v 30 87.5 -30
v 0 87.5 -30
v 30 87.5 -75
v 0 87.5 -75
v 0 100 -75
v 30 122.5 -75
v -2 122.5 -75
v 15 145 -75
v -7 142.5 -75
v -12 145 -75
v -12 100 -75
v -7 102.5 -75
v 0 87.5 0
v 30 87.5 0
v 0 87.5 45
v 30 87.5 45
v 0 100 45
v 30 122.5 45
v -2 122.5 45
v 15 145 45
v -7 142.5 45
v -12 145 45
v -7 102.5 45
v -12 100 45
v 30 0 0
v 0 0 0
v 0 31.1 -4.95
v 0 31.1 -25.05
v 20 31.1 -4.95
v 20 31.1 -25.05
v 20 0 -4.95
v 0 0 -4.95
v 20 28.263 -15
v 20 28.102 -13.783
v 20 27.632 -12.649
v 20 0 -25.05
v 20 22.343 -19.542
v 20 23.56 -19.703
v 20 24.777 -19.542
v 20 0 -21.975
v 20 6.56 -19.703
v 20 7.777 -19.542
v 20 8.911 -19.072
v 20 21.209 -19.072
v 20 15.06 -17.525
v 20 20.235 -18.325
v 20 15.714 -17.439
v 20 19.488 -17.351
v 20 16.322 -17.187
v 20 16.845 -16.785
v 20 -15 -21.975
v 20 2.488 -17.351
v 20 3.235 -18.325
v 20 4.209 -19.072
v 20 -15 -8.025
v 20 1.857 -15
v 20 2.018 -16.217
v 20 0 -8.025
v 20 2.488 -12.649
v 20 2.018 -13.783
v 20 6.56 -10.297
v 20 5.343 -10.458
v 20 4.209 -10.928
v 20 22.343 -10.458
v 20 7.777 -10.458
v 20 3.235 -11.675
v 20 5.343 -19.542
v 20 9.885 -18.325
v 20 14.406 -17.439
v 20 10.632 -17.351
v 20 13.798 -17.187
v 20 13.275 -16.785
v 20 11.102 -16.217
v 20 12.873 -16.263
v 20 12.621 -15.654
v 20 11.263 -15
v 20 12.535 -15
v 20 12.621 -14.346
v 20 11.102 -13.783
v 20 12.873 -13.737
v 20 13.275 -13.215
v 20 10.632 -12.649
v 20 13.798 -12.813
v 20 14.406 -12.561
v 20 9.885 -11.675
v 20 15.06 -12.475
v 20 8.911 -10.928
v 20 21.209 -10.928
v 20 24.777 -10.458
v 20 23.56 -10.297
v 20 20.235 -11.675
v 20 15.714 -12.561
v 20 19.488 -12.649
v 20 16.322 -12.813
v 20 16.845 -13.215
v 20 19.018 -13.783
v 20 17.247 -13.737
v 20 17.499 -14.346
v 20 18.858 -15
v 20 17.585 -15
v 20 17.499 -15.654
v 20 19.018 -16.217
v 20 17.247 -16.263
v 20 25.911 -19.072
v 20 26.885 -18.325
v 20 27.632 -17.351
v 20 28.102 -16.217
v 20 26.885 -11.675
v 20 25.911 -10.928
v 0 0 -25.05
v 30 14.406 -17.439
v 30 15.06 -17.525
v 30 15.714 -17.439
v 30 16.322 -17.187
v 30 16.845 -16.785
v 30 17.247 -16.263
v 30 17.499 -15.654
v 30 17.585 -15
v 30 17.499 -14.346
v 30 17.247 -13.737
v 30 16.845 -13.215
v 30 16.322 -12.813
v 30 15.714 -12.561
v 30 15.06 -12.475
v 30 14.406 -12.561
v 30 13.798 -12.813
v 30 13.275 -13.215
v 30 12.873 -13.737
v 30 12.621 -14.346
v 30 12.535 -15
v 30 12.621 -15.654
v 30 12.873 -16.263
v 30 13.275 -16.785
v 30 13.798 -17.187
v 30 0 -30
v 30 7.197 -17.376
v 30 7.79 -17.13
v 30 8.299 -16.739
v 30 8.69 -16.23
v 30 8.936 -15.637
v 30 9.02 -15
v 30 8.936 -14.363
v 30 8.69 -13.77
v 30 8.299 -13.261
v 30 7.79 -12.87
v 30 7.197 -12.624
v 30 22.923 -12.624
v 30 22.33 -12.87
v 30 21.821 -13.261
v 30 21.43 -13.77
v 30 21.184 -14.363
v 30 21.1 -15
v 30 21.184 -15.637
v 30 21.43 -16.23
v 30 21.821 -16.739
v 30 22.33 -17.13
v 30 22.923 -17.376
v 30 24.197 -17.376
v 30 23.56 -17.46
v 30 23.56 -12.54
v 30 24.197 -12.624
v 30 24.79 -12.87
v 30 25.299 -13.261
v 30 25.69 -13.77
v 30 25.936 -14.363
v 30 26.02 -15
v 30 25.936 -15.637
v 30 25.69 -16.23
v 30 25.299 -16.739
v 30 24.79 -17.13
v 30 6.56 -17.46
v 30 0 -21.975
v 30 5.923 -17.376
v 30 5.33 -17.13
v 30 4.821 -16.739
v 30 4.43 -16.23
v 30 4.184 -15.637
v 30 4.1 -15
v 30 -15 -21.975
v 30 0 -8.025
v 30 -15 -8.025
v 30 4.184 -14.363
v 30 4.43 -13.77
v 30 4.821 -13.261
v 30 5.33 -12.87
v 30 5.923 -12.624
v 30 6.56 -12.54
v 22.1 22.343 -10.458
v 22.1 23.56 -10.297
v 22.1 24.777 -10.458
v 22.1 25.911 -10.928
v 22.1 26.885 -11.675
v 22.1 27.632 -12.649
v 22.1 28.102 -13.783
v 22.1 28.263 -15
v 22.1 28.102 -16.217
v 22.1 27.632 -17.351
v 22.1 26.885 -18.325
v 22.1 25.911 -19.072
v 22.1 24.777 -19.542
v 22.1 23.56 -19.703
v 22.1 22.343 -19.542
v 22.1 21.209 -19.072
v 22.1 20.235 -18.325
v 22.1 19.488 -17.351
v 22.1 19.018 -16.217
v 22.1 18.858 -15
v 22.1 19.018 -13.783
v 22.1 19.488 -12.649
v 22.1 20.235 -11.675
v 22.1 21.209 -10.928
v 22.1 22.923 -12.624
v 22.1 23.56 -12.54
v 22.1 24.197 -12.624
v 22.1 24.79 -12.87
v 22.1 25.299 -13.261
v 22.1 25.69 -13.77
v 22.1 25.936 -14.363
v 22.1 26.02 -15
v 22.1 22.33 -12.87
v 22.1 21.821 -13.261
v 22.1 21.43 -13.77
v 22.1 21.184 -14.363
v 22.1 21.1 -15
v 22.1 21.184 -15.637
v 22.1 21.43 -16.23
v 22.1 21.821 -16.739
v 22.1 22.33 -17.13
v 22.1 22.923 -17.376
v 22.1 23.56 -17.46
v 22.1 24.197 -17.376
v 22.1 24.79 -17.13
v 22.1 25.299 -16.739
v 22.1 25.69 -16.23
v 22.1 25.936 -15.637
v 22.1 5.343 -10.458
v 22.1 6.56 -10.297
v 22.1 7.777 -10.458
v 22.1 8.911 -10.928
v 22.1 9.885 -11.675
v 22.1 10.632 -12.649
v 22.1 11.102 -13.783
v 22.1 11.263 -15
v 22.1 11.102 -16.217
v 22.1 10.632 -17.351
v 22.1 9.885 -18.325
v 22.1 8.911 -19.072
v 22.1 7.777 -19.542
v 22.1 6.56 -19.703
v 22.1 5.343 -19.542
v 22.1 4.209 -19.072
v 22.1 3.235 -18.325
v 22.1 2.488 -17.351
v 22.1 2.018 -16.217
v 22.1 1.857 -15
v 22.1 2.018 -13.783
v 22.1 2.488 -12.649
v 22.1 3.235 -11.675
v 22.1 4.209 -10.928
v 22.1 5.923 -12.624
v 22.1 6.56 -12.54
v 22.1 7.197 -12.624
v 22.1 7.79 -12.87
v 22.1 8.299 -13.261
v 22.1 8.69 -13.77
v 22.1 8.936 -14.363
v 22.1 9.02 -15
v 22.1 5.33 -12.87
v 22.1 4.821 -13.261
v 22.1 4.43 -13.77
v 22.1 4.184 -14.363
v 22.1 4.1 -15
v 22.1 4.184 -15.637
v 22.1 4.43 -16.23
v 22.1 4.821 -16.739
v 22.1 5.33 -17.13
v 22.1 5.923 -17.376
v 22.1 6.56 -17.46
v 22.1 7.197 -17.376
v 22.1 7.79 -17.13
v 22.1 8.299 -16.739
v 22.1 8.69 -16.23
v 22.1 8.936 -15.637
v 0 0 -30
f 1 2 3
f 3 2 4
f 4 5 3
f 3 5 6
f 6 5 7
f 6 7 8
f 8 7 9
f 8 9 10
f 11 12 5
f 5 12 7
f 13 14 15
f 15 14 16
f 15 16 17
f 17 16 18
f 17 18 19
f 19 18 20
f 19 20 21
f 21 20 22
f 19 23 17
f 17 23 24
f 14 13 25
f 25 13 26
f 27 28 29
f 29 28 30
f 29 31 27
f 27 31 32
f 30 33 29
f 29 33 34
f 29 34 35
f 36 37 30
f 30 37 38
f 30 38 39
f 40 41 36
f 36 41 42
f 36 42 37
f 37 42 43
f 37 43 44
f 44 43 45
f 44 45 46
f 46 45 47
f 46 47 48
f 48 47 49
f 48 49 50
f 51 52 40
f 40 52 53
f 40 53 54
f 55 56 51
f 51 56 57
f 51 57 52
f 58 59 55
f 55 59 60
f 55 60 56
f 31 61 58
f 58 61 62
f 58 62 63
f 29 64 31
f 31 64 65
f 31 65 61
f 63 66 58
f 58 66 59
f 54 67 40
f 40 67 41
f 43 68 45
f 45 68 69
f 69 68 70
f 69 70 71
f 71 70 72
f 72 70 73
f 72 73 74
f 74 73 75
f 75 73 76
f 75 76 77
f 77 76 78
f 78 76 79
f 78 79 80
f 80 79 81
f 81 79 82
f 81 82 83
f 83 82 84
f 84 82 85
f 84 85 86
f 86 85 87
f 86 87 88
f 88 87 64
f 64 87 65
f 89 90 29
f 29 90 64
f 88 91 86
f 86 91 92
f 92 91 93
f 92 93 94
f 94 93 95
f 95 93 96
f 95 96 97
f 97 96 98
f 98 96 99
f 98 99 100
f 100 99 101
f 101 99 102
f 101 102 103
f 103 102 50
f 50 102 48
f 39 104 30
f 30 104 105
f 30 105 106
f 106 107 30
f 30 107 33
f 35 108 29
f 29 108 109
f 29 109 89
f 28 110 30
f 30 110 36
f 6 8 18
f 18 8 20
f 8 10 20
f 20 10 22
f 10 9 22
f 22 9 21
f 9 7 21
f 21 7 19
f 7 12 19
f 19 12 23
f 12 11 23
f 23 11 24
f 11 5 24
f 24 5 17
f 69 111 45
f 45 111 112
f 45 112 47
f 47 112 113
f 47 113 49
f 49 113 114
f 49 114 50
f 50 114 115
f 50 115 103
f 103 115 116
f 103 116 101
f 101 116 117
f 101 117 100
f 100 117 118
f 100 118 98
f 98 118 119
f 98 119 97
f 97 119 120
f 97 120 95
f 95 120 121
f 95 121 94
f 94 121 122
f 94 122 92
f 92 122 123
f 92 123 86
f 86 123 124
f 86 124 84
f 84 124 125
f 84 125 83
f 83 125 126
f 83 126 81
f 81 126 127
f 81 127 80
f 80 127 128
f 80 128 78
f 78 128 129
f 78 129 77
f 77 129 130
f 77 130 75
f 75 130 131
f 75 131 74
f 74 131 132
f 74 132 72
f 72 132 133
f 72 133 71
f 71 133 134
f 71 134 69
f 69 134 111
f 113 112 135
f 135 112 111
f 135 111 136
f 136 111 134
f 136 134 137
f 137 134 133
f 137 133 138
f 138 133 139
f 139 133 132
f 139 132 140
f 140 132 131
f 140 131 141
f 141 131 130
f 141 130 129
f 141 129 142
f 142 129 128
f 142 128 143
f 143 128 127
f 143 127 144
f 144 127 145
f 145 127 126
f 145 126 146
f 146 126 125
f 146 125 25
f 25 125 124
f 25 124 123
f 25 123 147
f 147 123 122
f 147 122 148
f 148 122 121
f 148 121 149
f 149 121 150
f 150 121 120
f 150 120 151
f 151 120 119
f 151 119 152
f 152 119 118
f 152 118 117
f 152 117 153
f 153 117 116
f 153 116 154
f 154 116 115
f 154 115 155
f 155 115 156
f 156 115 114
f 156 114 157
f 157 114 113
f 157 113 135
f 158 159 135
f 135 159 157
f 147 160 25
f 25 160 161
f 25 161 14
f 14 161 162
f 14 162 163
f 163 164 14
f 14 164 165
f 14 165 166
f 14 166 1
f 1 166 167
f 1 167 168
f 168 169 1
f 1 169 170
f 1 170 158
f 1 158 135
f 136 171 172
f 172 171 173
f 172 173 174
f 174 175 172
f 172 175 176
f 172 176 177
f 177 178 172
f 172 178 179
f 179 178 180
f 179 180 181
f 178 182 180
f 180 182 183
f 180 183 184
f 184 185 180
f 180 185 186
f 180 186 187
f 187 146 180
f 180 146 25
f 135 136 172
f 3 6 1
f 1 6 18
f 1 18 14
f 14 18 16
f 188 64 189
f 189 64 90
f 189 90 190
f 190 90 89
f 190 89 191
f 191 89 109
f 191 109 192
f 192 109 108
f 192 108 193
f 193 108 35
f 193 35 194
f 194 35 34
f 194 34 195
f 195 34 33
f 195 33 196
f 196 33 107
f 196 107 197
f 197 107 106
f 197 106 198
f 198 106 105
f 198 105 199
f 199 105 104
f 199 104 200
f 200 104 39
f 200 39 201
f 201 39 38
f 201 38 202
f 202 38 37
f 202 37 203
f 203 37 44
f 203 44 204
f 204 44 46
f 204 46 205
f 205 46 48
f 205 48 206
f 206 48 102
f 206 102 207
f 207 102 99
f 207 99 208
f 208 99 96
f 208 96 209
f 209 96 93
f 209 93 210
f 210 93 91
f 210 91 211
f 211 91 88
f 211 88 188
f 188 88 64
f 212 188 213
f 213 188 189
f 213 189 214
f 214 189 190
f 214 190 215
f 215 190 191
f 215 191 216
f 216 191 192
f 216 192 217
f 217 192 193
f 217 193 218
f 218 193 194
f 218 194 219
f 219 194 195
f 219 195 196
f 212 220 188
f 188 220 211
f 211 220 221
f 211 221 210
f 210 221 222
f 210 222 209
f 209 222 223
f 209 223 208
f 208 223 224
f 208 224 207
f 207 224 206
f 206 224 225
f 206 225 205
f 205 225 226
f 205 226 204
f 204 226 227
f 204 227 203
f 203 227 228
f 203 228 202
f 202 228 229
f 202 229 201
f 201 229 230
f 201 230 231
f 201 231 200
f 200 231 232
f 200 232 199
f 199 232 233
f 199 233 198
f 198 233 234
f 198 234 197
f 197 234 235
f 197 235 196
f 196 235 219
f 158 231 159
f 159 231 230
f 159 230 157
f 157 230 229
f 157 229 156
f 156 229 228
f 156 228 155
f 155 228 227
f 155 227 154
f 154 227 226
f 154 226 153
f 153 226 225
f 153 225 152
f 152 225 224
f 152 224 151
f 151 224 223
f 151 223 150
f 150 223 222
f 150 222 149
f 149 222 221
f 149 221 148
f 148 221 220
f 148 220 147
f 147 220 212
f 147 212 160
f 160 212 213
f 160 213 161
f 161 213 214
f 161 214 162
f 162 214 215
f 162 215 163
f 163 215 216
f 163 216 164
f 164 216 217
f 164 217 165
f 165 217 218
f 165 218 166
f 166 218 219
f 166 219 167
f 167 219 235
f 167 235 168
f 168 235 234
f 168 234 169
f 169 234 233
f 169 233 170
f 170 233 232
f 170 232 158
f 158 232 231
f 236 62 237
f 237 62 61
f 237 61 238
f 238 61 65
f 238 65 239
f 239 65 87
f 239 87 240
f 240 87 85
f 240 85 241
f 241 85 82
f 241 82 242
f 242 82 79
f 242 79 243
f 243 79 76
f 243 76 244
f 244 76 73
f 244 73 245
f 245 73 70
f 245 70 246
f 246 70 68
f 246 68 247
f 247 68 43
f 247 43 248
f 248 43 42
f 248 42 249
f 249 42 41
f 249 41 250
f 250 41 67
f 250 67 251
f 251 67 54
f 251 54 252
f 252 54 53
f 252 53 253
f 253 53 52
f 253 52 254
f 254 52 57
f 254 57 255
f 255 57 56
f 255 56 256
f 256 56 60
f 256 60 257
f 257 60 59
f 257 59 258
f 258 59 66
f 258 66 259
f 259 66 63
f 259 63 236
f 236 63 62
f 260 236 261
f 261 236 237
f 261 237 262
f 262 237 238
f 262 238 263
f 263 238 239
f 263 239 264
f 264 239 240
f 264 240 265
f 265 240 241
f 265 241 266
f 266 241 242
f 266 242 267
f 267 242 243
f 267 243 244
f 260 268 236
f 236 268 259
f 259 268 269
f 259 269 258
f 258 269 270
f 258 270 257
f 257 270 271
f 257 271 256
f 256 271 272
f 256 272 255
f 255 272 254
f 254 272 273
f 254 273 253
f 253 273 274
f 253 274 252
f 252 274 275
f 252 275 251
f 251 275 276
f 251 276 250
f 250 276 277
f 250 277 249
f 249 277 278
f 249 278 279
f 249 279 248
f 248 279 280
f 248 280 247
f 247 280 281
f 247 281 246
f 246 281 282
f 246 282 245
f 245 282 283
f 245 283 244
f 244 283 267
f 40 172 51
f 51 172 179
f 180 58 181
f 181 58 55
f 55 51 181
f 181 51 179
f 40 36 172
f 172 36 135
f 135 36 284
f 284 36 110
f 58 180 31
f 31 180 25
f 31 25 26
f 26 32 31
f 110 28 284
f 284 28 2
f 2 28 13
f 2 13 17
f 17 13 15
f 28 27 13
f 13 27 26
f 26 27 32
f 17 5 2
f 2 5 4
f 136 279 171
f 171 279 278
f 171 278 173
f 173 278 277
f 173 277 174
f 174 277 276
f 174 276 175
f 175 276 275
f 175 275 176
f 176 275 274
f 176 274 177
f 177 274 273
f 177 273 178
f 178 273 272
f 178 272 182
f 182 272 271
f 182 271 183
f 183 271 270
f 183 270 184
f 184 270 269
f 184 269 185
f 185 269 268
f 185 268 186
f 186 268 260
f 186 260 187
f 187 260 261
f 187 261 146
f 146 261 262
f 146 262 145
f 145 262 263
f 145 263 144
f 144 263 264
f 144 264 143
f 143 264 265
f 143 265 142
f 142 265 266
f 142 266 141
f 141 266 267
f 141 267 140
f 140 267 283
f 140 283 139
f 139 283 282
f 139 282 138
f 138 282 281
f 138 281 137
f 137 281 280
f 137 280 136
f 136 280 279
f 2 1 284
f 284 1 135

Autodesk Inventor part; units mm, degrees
ref_plane "YZ Plane" through (0, 0, 0) normal (1, 0, 0) x (0, 1, 0)
ref_plane "XZ Plane" through (0, 0, 0) normal (0, 1, 0) x (-1, 0, 0)
sketch "Sketch1" plane through (0, 0, 0) normal (0, 0, 1) x (1, 0, 0)
  line L0 (0, 0) -> (25, 0)
  line L1 (25, 0) -> (25, 40)
  line L2 (25, 40) -> (0, 40)
  line L3 (0, 40) -> (0, 0)
  dimension "d1" = 25
  dimension "d2" = 40
  dimension "d3" = 25
extrude "Extrusion1" add sketch "Sketch1" against normal blind 30
sketch "Sketch2" plane through (25, 0, 0) normal (1, 0, 0) x (0, 0, -1)
  line L0 (0, 0) -> (30, 0) projected
  circle A0 centre (15, 6.56) radius 2.46
extrude "Extrusion2" cut sketch "Sketch2" against normal blind 30
sketch "Sketch3" plane through (0, 0, 0) normal (-1, 0, 0) x (0, 0, 1)
  line L0 (0, 0) -> (-30, 0) projected
  line L1 (-25.05, 0) -> (-4.95, 0)
  line L2 (-4.95, 0) -> (-4.95, 33.12)
  line L3 (-4.95, 33.12) -> (-25.05, 33.12)
  line L4 (-25.05, 33.12) -> (-25.05, 0)
  dimension "d11" = 20.1
extrude "Extrusion3" cut sketch "Sketch3" against normal blind 20
sketch "Sketch4" plane through (0, 0, 0) normal (0, -1, 0) x (1, 0, 0)
  line L0 (20, -4.95) -> (20, -25.05) projected
  line L1 (20, -15) -> (25, -15)
  line L2 (25, 0) -> (25, -30) projected
  line L3 (20, -8.025) -> (25, -8.025)
  line L4 (25, -8.025) -> (25, -21.975)
  line L5 (25, -21.975) -> (20, -21.975)
  line L6 (20, -21.975) -> (20, -8.025)
  line L7 (20, -8.025) -> (25, -21.975) construction
  line L8 (25, -8.025) -> (20, -21.975) construction
  line L9 (25, -12.54) -> (25, -17.46) projected
  point P0 (0, 0)
  point P1 (22.5, -15)
  dimension "d14" = 13.95
extrude "Extrusion4" add sketch "Sketch4" along normal blind 15
sketch "Sketch5" plane through (20, 0, 0) normal (-1, 0, 0) x (0, 0, 1)
  circle A0 centre (-15, 6.56) radius 2.46 projected
  circle A1 centre (-15, 6.56) radius 4.7025
  circle A2 centre (-15, 6.56) radius 2.46 projected
  circle A3 centre (-15, 6.56) radius 2.46
  point P0 (0, 0)
  dimension "d17" = 9.405
extrude "Extrusion5" cut sketch "Sketch5" against normal blind 2.1
sketch "Sketch6" plane through (25, 0, 0) normal (1, 0, 0) x (0, 0, -1)
  circle A0 centre (15, 6.56) radius 4.7025 projected
  line L0 (15, 6.56) -> (15, 23.56)
  circle A1 centre (15, 23.56) radius 2.46
  point P0 (0, 0)
  dimension "d20" = 17
  dimension "d21" = 4.92
extrude "Extrusion6" cut sketch "Sketch6" against normal blind 10 contours A1
sketch "Sketch7" plane through (20, 0, 0) normal (-1, 0, 0) x (0, 0, 1)
  circle A0 centre (-15, 23.56) radius 2.46 projected
  circle A1 centre (-15, 23.56) radius 4.7025
  point P0 (0, 0)
  dimension "d24" = 9.405
extrude "Extrusion7" cut sketch "Sketch7" against normal blind 2.1
sketch "Sketch9" plane through (25, 0, 0) normal (1, 0, 0) x (0, 0, -1)
  circle A0 centre (15, 6.56) radius 2.46 projected
  circle A1 centre (15, 6.56) radius 2.46
  circle A2 centre (15, 23.56) radius 2.46 projected
  circle A3 centre (15, 23.56) radius 2.46
  line L0 (30, 40) -> (30, 0) projected
  line L1 (30, 0) -> (30, 40)
  line L2 (30, 40) -> (0, 40)
  line L3 (0, 40) -> (0, 0)
  line L4 (0, 0) -> (8.025, 0) projected
  line L5 (21.975, 0) -> (21.975, -15)
  line L6 (21.975, -15) -> (8.025, -15)
  line L7 (8.025, -15) -> (8.025, 0)
  line L8 (0, 0) -> (8.025, 0)
  line L9 (21.975, 0) -> (30, 0)
extrude "Extrusion8" add sketch "Sketch9" along normal blind 5
sketch "Sketch10" plane through (0, 40, 0) normal (0, 1, 0) x (1, 0, 0)
  line L0 (0, 30) -> (30, 30) projected
  line L1 (30, 0) -> (0, 0) projected
  line L2 (0, 30) -> (30, 30)
  line L3 (30, 30) -> (30, 0)
  line L4 (30, 0) -> (0, 0)
  line L5 (0, 0) -> (0, 30)
extrude "Extrusion9" add sketch "Sketch10" along normal blind 30
sketch "Sketch12" plane through (30, 0, 0) normal (1, 0, 0) x (0, 0, -1)
  circle A0 centre (15, 6.56) radius 2.46 projected
  line L0 (15, 6.56) -> (15, 15.06)
  circle A1 centre (15, 15.06) radius 2.525
  point P0 (0, 0)
  dimension "d31" = 8.5
  dimension "d33" = 5.05
extrude "Extrusion10" cut sketch "Sketch12" against normal blind 30 contours A1
sketch "Sketch14" plane through (0, 0, 0) normal (0, 0, 1) x (1, 0, 0)
  line L0 (30, 70) -> (0, 70) projected
  line L1 (0, 70) -> (0, 100)
  line L2 (30, 0) -> (30, 70) projected
  line L3 (30, 122.5) -> (30, 70)
  line L4 (30, 105) -> (30, 100)
  line L5 (-12, 145) -> (15, 145)
  line L6 (-7, 142.5) -> (-12, 145)
  line L7 (-7, 102.5) -> (-12, 100)
  line L8 (-7, 102.5) -> (-2, 122.5)
  line L9 (-2, 122.5) -> (-7, 142.5)
  line L10 (30, 122.5) -> (15, 145)
  line L11 (0, 100) -> (-12, 100)
  point P0 (0, 0)
  dimension "d86" = 12
extrude "Extrusion12" add sketch "Sketch14" against normal blind 30
sketch "Sketch15" plane through (0, 0, -25.05) normal (-1, 0, 0) x (0, 0, 1)
  line L0 (0, 33.12) -> (20.1, 33.12) projected
  line L1 (20.1, 33.12) -> (20.1, 0) projected
  line L2 (0, 33.12) -> (20.1, 33.12)
  line L3 (20.1, 33.12) -> (20.1, 31.1)
  line L4 (20.1, 31.1) -> (0, 31.1)
  line L5 (0, 31.1) -> (0, 33.12)
  point P0 (25.05, 0)
  dimension "d57" = 2.02
extrude "Extrusion13" add sketch "Sketch15" against normal blind 20
sketch "Sketch24" plane through (0, 0, 0) normal (0, 0, 1) x (1, 0, 0)
  line L0 (0, 100) -> (-12, 100) projected
  line L1 (-12, 100) -> (-7, 102.5) projected
  line L2 (0, 100) -> (-12, 100)
  line L3 (-12, 100) -> (-7, 102.5)
  line L4 (-7, 102.5) -> (-2, 122.5) projected
  line L5 (-7, 102.5) -> (-2, 122.5)
  line L6 (-2, 122.5) -> (-7, 142.5) projected
  line L7 (-2, 122.5) -> (-7, 142.5)
  line L8 (-7, 142.5) -> (-12, 145) projected
  line L9 (-7, 142.5) -> (-12, 145)
  line L10 (-12, 145) -> (15, 145) projected
  line L11 (-12, 145) -> (15, 145)
  line L12 (15, 145) -> (30, 122.5) projected
  line L13 (15, 145) -> (30, 122.5)
  line L14 (30, 122.5) -> (30, 87.5)
  line L15 (30, 87.5) -> (0, 87.5)
  line L16 (0, 87.5) -> (0, 100)
  point P0 (0, 0)
  dimension "d87" = 35
  dimension "d88" = 30
extrude "Extrusion14" add sketch "Sketch24" along normal blind 45
ref_plane "Work Plane1" through (0, 0, -15) normal (0, 0, 1) x (1, 0, 0)
mirror "Mirror1" about plane through (0, 0, -15) normal (0, 0, 1) of "Extrusion14"
properties part number "rec_b_40mm_x_120mm"
